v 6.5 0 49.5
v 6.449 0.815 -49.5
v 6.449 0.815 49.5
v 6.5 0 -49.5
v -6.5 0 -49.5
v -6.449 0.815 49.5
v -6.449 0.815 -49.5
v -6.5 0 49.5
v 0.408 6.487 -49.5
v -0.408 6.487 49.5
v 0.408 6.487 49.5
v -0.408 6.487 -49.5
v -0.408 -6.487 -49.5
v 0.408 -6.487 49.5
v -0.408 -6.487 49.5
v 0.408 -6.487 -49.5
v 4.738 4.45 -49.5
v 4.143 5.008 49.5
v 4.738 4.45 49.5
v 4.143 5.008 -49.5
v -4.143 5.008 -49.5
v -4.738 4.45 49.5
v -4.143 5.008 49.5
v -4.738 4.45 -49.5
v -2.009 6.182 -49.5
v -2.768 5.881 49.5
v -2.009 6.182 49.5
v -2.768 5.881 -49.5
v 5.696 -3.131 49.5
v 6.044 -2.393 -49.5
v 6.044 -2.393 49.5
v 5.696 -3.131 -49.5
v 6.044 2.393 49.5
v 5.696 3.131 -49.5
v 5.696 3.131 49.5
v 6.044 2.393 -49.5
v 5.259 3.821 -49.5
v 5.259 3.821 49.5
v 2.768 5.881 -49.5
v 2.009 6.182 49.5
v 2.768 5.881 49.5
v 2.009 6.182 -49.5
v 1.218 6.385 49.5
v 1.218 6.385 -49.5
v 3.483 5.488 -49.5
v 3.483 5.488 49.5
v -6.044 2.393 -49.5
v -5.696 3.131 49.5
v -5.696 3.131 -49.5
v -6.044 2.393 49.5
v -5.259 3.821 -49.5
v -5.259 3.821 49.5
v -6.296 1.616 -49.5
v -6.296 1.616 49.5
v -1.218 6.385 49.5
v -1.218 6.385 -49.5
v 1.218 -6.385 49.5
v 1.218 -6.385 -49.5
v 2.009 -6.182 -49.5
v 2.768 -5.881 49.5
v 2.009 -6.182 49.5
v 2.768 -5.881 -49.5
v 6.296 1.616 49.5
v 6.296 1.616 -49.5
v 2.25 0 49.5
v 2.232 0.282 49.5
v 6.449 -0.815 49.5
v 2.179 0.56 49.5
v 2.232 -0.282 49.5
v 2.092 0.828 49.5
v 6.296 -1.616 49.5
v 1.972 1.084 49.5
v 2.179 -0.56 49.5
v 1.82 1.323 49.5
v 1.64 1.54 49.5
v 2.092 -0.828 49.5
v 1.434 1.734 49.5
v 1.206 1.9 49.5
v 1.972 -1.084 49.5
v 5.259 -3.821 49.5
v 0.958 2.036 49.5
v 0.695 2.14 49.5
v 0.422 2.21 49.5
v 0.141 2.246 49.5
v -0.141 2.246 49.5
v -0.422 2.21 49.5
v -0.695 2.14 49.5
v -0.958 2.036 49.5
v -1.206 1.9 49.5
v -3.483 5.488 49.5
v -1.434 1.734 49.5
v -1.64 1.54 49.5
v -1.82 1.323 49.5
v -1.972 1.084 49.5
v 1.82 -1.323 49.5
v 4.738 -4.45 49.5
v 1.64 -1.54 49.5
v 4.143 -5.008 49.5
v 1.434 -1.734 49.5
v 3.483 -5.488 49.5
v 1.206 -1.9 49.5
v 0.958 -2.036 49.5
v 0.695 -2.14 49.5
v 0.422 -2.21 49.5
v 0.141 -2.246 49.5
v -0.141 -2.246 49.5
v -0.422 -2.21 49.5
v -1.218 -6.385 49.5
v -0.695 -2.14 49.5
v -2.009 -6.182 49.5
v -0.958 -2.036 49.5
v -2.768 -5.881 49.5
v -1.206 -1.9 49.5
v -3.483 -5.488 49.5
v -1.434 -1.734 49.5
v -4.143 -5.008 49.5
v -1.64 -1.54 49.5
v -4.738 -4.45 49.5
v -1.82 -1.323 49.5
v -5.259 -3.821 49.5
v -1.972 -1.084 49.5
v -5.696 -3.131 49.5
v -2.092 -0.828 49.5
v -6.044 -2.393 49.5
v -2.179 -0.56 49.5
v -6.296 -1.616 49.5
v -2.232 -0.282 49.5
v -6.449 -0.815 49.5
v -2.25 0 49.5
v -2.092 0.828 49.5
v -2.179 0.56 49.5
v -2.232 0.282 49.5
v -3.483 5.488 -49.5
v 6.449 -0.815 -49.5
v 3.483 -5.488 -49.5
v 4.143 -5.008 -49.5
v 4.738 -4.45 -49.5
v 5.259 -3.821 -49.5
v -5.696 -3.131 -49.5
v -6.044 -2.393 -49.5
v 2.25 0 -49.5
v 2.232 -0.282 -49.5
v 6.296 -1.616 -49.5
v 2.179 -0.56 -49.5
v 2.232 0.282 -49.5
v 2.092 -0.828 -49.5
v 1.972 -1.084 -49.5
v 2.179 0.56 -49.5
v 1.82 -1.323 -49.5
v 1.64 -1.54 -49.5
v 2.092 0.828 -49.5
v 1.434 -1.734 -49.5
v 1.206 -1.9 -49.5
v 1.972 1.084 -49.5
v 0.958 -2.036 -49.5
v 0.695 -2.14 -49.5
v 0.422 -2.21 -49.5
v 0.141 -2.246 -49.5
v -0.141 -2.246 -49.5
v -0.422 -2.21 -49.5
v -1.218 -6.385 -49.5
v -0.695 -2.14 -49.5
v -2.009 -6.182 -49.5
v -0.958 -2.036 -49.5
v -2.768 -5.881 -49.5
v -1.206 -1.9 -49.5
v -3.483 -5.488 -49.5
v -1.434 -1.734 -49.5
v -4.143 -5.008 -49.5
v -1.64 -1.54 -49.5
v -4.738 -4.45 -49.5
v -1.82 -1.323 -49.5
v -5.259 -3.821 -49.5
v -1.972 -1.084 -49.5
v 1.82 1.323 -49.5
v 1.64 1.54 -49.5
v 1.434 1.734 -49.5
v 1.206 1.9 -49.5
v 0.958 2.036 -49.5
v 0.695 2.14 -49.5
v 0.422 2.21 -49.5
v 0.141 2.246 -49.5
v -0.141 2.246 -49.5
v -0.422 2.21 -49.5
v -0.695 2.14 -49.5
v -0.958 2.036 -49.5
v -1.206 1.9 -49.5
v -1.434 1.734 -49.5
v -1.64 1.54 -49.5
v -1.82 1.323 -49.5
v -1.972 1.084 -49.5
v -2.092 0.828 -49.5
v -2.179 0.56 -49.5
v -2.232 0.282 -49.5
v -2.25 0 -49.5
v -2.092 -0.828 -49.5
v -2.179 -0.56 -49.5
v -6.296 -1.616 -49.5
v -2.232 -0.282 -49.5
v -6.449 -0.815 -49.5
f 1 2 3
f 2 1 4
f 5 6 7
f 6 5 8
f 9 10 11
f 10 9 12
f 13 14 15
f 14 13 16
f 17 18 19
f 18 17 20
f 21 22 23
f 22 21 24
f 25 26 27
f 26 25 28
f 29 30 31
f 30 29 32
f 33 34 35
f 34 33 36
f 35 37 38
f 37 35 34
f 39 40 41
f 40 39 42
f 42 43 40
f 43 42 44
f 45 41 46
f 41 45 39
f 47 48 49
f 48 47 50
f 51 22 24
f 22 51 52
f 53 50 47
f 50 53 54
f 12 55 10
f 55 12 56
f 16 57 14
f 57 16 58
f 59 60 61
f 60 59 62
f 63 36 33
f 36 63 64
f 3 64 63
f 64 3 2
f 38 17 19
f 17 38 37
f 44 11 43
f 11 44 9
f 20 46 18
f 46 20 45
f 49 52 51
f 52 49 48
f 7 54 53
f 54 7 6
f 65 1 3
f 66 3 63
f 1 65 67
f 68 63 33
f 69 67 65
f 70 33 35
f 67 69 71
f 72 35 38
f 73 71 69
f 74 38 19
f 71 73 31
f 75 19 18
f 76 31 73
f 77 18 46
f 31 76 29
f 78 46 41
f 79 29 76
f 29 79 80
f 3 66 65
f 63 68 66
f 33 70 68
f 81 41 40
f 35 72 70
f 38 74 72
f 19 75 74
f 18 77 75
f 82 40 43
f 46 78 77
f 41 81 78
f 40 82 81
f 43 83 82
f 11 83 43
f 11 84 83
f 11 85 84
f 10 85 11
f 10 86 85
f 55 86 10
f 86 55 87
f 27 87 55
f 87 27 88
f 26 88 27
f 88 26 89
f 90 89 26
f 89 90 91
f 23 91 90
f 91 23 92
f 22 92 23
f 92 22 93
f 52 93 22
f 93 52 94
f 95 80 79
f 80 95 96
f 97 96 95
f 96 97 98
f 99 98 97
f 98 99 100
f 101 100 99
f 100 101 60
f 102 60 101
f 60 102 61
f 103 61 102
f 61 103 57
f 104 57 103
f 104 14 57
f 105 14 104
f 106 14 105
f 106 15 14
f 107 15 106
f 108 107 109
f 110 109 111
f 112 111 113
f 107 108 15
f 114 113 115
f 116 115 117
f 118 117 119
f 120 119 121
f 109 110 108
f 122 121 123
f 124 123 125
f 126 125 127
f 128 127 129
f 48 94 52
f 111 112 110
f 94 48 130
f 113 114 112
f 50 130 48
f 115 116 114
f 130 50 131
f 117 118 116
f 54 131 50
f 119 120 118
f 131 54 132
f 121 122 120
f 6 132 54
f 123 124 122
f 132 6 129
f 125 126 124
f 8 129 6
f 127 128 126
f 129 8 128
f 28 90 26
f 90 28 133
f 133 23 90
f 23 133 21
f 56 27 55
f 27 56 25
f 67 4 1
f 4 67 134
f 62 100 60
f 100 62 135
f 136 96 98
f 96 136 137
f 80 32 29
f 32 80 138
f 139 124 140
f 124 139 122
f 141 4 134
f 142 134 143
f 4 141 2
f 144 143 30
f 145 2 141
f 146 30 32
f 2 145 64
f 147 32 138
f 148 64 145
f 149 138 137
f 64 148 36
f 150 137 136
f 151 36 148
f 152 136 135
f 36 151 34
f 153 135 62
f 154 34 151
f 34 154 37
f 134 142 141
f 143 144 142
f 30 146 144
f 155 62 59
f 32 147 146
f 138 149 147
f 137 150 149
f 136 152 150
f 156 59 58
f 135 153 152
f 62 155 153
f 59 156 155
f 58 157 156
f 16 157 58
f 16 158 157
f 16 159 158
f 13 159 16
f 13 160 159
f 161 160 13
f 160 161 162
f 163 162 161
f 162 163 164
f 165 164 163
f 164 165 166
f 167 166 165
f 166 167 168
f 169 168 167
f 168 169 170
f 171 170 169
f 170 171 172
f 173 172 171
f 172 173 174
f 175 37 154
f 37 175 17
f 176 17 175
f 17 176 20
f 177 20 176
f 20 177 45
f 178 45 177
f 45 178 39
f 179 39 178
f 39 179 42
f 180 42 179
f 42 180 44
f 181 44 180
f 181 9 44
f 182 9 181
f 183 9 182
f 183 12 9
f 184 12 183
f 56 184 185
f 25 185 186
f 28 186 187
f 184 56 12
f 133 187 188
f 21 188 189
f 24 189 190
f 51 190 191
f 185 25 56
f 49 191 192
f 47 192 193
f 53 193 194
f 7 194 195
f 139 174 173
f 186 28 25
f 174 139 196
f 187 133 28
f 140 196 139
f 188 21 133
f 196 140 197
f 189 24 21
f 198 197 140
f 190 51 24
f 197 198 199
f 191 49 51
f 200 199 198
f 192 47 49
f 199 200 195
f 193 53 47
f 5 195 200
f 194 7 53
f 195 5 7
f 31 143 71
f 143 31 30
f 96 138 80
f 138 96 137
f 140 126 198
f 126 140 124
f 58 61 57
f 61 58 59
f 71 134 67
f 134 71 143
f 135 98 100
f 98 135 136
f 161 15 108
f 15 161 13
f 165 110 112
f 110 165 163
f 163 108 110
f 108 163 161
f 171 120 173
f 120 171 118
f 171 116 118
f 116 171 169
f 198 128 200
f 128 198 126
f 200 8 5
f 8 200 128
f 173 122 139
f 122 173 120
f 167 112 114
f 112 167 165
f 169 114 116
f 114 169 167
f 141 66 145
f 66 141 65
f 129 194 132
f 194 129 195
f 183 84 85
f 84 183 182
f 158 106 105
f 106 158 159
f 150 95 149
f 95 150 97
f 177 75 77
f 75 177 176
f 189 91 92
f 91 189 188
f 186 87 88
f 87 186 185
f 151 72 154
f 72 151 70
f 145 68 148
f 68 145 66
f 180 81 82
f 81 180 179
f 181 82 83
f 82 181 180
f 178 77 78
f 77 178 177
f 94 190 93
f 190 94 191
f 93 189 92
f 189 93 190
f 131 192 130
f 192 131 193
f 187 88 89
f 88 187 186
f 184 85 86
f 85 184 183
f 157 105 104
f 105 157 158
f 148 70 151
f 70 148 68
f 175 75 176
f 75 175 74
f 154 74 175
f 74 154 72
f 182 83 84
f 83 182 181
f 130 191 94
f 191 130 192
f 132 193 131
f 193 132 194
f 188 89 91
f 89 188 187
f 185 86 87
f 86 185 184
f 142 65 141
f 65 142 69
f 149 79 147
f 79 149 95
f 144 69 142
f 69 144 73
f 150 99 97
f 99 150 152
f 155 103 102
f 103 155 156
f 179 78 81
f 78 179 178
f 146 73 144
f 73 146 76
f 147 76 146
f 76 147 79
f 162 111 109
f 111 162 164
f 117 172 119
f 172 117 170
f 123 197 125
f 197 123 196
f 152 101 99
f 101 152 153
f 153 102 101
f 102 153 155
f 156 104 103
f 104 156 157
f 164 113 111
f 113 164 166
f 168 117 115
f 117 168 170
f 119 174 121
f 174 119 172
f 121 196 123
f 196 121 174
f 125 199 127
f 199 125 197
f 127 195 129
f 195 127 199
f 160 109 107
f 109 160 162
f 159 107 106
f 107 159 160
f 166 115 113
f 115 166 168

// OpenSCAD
$fn = 50;


difference() {
	union() {
		translate(v = [0, 0, -49.5000000000]) {
			cylinder(h = 99, r = 6.5000000000);
		}
	}
	union() {
		translate(v = [0, 0, -100.0000000000]) {
			cylinder(h = 200, r = 2.2500000000);
		}
	}
}
